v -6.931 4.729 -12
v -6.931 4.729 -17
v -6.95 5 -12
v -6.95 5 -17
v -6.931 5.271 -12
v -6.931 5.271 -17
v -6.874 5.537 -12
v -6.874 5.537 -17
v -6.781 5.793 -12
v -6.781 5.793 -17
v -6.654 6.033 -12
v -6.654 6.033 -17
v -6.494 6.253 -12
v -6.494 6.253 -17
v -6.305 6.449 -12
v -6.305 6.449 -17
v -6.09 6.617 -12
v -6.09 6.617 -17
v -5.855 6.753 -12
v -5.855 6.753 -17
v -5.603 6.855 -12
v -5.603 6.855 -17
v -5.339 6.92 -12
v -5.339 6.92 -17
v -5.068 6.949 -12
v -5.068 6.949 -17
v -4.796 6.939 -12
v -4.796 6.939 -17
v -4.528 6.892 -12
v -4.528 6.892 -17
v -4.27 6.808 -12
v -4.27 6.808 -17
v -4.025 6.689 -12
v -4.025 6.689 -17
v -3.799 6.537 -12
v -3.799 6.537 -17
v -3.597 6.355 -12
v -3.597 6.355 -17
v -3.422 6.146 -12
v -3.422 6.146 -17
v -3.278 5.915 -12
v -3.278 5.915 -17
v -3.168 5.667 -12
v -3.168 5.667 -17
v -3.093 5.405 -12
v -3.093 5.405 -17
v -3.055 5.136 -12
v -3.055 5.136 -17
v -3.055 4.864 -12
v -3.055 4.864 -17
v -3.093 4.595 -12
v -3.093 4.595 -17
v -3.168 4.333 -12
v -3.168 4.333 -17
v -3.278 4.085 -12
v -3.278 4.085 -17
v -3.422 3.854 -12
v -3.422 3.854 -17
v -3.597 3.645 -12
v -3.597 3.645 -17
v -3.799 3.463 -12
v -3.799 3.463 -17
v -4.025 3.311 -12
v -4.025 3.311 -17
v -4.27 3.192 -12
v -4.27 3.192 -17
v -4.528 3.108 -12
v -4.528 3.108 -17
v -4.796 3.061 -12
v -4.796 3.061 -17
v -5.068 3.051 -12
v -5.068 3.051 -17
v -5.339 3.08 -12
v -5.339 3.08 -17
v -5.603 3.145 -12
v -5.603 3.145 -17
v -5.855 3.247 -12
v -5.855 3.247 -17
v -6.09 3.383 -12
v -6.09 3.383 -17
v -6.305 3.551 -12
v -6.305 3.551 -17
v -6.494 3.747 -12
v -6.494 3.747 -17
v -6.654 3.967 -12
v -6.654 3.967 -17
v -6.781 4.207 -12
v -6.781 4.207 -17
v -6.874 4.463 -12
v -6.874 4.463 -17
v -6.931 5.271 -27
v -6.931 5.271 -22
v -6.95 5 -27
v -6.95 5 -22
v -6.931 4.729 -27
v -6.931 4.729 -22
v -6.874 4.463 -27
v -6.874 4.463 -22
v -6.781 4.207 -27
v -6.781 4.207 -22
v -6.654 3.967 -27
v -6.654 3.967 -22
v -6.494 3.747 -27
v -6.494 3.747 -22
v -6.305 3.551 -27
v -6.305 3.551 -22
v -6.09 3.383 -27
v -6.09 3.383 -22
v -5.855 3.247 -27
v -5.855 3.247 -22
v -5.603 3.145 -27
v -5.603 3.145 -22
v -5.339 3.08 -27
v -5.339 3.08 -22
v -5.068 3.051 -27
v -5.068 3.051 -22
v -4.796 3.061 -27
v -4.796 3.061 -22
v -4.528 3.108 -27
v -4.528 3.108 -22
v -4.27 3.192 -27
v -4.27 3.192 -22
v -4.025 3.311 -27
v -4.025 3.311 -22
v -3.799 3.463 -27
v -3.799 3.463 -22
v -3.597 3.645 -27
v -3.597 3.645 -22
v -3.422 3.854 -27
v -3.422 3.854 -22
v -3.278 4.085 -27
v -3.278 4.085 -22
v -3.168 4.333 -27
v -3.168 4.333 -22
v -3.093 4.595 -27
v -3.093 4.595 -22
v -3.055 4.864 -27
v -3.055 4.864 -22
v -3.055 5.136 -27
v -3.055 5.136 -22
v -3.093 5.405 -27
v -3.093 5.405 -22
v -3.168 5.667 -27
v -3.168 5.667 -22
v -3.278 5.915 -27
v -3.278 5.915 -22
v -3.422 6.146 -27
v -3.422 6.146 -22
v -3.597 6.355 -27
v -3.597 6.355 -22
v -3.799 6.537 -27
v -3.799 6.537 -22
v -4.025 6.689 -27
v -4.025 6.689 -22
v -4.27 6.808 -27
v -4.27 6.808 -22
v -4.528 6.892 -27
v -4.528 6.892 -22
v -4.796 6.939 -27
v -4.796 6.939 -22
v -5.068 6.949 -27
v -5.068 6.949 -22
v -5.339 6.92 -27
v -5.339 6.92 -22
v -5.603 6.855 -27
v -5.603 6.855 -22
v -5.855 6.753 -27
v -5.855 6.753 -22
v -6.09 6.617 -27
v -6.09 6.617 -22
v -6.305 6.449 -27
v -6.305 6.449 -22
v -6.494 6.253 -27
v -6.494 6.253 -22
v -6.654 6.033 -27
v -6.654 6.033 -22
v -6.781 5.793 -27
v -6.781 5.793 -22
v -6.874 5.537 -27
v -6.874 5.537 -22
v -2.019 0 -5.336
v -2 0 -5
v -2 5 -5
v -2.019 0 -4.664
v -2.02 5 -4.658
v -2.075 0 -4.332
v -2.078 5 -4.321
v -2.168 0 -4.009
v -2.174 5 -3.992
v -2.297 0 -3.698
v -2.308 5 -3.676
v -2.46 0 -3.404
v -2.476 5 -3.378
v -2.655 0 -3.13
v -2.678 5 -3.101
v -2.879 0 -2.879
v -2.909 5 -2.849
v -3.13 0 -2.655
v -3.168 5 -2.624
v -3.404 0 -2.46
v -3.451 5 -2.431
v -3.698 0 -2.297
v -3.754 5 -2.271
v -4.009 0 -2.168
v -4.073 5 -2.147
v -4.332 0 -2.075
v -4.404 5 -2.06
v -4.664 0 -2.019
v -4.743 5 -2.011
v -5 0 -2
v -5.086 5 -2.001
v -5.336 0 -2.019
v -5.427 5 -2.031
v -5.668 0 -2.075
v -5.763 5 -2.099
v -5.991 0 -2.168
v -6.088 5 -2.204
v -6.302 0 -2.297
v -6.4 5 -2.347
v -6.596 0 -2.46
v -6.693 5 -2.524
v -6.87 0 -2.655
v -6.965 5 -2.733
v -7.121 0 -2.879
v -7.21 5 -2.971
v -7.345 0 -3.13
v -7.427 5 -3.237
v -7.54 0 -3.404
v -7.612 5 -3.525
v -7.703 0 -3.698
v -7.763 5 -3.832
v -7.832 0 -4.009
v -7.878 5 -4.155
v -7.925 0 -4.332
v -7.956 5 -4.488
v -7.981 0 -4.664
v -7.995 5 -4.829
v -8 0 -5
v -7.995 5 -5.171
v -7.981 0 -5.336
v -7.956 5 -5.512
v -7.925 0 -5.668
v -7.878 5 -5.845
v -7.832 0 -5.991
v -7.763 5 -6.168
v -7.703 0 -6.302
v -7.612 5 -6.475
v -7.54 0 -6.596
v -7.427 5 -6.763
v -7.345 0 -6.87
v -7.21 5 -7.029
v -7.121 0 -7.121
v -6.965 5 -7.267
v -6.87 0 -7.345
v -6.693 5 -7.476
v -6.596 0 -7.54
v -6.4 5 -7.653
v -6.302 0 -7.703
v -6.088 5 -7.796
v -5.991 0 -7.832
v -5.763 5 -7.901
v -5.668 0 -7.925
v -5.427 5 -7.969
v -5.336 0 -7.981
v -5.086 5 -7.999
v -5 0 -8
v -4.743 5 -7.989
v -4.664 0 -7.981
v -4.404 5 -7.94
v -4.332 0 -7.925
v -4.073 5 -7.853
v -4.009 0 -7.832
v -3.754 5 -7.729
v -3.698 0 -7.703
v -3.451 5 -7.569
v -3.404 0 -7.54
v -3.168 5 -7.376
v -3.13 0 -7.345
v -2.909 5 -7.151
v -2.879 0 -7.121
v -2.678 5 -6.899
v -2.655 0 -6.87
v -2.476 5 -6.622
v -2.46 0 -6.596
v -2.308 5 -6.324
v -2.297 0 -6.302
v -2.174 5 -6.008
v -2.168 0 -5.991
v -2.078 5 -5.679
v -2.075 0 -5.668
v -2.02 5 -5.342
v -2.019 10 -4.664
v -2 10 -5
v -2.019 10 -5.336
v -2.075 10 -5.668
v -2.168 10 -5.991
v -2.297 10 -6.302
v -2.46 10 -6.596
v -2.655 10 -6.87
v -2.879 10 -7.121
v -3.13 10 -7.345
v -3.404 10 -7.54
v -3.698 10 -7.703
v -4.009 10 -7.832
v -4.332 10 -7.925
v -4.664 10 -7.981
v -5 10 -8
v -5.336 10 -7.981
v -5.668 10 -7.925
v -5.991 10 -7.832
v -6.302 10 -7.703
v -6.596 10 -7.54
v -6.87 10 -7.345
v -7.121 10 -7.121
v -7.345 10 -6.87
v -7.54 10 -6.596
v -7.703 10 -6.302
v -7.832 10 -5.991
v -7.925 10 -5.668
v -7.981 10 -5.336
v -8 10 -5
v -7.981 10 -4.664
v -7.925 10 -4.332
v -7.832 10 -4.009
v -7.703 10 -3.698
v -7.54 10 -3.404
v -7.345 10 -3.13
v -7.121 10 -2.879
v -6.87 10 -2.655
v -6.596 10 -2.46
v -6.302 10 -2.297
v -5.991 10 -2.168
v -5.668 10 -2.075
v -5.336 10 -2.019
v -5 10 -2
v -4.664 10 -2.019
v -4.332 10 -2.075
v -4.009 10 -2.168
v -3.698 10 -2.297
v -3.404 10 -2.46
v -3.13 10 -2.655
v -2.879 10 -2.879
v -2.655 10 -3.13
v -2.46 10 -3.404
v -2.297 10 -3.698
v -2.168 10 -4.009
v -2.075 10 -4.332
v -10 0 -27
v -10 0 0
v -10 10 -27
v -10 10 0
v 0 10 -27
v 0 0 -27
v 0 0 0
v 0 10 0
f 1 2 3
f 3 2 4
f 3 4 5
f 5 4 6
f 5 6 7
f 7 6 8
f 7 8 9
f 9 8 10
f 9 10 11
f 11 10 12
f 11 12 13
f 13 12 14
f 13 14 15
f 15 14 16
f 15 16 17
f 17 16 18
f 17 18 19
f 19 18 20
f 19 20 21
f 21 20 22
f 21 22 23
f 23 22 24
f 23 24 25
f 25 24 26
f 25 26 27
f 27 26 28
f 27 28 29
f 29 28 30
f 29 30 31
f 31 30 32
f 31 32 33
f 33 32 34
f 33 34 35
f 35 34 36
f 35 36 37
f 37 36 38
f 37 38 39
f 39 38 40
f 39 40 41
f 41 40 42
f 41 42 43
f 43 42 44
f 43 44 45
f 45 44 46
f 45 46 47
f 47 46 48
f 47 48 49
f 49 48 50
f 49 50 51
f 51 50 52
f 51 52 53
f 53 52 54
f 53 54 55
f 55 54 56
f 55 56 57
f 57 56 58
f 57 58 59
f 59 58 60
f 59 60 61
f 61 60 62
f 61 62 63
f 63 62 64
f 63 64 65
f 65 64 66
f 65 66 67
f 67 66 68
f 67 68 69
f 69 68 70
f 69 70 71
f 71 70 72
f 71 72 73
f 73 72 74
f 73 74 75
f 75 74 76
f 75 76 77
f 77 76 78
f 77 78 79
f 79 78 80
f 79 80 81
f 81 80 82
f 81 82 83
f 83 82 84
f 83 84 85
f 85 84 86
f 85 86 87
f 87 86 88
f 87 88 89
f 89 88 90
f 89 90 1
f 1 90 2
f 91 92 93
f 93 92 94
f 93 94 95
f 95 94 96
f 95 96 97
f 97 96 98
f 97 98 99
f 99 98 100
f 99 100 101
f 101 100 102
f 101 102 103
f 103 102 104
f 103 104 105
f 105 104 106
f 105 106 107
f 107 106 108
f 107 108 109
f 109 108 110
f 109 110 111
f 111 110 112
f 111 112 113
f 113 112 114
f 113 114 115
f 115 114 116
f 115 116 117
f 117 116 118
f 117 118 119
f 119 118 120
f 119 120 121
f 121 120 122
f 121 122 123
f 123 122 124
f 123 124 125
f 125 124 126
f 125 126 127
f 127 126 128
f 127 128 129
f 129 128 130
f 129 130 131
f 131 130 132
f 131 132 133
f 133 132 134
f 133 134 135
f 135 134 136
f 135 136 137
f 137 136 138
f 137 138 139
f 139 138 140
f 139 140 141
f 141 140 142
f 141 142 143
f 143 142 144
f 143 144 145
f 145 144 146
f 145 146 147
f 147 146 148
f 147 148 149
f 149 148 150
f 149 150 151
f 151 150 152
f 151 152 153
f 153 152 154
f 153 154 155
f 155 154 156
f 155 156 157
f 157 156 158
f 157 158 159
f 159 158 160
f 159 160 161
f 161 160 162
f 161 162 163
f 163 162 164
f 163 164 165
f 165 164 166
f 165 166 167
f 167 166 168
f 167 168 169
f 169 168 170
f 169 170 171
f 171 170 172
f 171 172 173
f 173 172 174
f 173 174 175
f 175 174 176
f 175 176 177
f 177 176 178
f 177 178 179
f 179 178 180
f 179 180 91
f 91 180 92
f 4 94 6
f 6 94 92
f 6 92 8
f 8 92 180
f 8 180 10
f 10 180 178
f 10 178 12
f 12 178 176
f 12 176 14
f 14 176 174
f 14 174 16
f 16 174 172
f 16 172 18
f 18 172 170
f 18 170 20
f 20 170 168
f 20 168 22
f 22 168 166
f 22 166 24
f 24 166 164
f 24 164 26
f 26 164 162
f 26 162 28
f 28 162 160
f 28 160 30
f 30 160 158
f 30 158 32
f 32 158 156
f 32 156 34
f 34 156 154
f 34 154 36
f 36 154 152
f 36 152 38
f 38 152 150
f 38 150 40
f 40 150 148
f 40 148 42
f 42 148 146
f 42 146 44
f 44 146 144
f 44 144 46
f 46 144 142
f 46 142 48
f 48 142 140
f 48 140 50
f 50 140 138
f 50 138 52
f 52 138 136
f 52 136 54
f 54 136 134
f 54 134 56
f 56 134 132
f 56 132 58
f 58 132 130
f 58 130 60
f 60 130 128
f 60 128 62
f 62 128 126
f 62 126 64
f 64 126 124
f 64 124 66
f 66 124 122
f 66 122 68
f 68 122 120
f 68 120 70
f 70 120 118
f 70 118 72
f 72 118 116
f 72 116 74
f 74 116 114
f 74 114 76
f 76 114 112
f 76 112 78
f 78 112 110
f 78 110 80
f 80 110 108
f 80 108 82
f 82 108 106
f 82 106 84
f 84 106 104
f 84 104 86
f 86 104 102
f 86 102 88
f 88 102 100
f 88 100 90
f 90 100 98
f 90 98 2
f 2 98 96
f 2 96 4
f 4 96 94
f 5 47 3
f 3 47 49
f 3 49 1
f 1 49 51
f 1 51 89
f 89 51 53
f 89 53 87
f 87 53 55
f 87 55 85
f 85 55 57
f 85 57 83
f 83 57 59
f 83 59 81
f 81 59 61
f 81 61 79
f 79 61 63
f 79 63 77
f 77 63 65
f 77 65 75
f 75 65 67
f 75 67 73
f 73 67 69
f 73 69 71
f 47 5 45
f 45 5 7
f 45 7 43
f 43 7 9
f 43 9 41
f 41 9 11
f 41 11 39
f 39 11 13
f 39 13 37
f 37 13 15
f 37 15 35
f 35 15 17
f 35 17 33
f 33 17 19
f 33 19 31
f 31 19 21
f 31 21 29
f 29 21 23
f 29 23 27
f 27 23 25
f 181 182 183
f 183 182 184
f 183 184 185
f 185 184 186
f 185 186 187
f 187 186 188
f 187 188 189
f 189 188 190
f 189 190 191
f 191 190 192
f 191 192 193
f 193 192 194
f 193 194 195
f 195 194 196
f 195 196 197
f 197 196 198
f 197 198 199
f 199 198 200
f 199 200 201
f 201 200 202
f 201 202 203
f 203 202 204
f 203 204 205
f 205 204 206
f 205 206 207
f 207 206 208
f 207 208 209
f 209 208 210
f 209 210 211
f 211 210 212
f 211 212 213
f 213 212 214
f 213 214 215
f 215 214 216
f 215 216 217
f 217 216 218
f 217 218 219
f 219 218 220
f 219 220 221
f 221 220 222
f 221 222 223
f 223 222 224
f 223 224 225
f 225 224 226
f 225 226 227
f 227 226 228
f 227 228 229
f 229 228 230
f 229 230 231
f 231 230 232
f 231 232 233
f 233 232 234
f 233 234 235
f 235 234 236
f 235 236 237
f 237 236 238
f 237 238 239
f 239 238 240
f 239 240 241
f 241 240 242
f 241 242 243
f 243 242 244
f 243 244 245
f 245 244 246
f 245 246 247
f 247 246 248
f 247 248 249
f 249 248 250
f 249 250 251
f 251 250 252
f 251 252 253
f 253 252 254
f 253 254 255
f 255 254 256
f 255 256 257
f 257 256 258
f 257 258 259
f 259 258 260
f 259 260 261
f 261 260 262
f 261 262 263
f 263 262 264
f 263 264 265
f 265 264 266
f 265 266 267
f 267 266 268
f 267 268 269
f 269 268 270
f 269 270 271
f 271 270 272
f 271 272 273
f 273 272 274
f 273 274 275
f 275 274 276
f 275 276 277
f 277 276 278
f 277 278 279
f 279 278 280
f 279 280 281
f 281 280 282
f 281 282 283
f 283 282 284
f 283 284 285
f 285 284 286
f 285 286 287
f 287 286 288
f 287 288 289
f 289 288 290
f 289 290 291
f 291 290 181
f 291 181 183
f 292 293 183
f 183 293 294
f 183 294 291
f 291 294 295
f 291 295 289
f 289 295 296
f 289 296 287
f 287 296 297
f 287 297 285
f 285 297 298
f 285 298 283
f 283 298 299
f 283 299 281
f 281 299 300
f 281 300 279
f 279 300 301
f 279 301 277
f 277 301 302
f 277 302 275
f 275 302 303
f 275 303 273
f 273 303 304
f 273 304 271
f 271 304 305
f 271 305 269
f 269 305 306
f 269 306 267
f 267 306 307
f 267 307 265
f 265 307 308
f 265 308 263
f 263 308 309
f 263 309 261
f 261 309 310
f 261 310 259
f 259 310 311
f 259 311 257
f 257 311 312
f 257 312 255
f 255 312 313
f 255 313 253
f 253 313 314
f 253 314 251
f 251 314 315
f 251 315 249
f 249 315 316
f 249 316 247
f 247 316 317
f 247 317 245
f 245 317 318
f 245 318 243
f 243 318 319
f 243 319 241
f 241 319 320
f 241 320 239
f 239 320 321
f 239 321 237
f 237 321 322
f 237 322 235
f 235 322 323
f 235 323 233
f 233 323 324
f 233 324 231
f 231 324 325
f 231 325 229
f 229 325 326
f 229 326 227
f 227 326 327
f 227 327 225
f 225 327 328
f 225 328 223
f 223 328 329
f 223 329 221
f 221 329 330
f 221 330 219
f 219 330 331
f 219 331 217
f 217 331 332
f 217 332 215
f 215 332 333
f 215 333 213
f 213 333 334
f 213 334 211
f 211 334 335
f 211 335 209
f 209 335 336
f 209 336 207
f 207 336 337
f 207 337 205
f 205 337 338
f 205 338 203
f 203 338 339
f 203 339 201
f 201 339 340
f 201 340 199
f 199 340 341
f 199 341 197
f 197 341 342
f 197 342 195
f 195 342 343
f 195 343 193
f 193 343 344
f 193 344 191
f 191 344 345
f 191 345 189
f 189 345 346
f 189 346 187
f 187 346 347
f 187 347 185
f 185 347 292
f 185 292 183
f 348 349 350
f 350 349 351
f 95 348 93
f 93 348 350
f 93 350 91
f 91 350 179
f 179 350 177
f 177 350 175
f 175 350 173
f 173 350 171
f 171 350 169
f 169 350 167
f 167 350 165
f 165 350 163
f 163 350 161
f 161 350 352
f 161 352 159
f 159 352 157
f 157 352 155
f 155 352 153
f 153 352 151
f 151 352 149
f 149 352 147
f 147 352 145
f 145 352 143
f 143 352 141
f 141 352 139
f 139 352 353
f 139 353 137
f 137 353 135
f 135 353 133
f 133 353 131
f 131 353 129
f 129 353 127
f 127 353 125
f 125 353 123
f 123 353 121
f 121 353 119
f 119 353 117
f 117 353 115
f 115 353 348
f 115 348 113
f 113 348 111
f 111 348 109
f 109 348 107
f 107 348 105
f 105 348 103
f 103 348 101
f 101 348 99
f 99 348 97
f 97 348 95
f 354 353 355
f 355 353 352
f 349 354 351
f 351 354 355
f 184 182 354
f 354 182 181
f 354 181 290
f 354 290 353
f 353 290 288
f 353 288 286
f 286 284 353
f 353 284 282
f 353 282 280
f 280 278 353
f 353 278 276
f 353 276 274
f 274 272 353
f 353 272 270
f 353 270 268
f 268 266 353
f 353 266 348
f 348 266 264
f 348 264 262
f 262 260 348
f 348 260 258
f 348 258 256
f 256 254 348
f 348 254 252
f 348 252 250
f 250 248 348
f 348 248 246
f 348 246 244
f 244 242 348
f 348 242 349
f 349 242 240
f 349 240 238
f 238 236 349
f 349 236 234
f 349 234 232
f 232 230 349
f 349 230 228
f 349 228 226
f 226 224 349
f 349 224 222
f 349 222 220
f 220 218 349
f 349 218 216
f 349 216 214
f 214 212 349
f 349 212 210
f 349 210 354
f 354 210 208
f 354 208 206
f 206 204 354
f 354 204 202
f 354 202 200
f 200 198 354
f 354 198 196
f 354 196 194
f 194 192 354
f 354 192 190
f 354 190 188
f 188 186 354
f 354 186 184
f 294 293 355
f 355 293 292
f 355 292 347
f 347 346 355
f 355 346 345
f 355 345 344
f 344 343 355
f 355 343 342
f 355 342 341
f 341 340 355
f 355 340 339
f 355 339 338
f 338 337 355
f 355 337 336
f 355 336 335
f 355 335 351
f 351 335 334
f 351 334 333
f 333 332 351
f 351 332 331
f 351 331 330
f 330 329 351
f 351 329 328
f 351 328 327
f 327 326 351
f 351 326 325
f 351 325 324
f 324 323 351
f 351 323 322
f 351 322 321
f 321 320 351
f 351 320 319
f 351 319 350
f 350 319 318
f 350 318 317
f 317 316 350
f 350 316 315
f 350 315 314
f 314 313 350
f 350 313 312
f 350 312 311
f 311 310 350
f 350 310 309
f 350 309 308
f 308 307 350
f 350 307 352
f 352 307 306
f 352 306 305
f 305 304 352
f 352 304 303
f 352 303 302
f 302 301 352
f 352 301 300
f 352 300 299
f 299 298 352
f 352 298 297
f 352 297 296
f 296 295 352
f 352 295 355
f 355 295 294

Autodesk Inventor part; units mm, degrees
ref_plane "YZ Plane" through (0, 0, 0) normal (1, 0, 0) x (0, 1, 0)
ref_plane "XZ Plane" through (0, 0, 0) normal (0, 1, 0) x (-1, 0, 0)
ref_plane "XY Plane" through (0, 0, 0) normal (0, 0, 1) x (1, 0, 0)
sketch "Sketch1" plane through (0, 0, 0) normal (0, 1, 0) x (-1, 0, 0)
  line L0 (0, 0) -> (10, 0)
  line L1 (10, 0) -> (10, -27)
  line L2 (10, -27) -> (0, -27)
  line L3 (0, -27) -> (0, 0)
  dimension "d0" = 10
  dimension "d1" = 27
extrude "Extrusion1" add sketch "Sketch1" along normal blind 10
sketch "Sketch2" plane through (0, 10, 0) normal (0, 1, 0) x (1, 0, 0)
  line L0 (-10, 27) -> (-10, 0) projected
  line L1 (-10, 0) -> (-10, 5)
  circle A0 centre (-5, 5) radius 3
  point P0 (0, 0)
  dimension "d4" = 5
  dimension "d5" = 6
extrude "Extrusion2" cut sketch "Sketch2" against normal blind 10
sketch "Sketch3" plane through (0, 0, -27) normal (0, 0, -1) x (-1, 0, 0)
  line L0 (0, 10) -> (10, 10) projected
  line L1 (0, 10) -> (5, 10)
  line L2 (5, 10) -> (5, 5)
  circle A0 centre (5, 5) radius 1.95
  point P0 (0, 0)
  dimension "d8" = 5
  dimension "d9" = 5
  dimension "d10" = 3.9
extrude "Extrusion3" cut sketch "Sketch3" against normal blind 15
properties part number "Raket_Arme"
